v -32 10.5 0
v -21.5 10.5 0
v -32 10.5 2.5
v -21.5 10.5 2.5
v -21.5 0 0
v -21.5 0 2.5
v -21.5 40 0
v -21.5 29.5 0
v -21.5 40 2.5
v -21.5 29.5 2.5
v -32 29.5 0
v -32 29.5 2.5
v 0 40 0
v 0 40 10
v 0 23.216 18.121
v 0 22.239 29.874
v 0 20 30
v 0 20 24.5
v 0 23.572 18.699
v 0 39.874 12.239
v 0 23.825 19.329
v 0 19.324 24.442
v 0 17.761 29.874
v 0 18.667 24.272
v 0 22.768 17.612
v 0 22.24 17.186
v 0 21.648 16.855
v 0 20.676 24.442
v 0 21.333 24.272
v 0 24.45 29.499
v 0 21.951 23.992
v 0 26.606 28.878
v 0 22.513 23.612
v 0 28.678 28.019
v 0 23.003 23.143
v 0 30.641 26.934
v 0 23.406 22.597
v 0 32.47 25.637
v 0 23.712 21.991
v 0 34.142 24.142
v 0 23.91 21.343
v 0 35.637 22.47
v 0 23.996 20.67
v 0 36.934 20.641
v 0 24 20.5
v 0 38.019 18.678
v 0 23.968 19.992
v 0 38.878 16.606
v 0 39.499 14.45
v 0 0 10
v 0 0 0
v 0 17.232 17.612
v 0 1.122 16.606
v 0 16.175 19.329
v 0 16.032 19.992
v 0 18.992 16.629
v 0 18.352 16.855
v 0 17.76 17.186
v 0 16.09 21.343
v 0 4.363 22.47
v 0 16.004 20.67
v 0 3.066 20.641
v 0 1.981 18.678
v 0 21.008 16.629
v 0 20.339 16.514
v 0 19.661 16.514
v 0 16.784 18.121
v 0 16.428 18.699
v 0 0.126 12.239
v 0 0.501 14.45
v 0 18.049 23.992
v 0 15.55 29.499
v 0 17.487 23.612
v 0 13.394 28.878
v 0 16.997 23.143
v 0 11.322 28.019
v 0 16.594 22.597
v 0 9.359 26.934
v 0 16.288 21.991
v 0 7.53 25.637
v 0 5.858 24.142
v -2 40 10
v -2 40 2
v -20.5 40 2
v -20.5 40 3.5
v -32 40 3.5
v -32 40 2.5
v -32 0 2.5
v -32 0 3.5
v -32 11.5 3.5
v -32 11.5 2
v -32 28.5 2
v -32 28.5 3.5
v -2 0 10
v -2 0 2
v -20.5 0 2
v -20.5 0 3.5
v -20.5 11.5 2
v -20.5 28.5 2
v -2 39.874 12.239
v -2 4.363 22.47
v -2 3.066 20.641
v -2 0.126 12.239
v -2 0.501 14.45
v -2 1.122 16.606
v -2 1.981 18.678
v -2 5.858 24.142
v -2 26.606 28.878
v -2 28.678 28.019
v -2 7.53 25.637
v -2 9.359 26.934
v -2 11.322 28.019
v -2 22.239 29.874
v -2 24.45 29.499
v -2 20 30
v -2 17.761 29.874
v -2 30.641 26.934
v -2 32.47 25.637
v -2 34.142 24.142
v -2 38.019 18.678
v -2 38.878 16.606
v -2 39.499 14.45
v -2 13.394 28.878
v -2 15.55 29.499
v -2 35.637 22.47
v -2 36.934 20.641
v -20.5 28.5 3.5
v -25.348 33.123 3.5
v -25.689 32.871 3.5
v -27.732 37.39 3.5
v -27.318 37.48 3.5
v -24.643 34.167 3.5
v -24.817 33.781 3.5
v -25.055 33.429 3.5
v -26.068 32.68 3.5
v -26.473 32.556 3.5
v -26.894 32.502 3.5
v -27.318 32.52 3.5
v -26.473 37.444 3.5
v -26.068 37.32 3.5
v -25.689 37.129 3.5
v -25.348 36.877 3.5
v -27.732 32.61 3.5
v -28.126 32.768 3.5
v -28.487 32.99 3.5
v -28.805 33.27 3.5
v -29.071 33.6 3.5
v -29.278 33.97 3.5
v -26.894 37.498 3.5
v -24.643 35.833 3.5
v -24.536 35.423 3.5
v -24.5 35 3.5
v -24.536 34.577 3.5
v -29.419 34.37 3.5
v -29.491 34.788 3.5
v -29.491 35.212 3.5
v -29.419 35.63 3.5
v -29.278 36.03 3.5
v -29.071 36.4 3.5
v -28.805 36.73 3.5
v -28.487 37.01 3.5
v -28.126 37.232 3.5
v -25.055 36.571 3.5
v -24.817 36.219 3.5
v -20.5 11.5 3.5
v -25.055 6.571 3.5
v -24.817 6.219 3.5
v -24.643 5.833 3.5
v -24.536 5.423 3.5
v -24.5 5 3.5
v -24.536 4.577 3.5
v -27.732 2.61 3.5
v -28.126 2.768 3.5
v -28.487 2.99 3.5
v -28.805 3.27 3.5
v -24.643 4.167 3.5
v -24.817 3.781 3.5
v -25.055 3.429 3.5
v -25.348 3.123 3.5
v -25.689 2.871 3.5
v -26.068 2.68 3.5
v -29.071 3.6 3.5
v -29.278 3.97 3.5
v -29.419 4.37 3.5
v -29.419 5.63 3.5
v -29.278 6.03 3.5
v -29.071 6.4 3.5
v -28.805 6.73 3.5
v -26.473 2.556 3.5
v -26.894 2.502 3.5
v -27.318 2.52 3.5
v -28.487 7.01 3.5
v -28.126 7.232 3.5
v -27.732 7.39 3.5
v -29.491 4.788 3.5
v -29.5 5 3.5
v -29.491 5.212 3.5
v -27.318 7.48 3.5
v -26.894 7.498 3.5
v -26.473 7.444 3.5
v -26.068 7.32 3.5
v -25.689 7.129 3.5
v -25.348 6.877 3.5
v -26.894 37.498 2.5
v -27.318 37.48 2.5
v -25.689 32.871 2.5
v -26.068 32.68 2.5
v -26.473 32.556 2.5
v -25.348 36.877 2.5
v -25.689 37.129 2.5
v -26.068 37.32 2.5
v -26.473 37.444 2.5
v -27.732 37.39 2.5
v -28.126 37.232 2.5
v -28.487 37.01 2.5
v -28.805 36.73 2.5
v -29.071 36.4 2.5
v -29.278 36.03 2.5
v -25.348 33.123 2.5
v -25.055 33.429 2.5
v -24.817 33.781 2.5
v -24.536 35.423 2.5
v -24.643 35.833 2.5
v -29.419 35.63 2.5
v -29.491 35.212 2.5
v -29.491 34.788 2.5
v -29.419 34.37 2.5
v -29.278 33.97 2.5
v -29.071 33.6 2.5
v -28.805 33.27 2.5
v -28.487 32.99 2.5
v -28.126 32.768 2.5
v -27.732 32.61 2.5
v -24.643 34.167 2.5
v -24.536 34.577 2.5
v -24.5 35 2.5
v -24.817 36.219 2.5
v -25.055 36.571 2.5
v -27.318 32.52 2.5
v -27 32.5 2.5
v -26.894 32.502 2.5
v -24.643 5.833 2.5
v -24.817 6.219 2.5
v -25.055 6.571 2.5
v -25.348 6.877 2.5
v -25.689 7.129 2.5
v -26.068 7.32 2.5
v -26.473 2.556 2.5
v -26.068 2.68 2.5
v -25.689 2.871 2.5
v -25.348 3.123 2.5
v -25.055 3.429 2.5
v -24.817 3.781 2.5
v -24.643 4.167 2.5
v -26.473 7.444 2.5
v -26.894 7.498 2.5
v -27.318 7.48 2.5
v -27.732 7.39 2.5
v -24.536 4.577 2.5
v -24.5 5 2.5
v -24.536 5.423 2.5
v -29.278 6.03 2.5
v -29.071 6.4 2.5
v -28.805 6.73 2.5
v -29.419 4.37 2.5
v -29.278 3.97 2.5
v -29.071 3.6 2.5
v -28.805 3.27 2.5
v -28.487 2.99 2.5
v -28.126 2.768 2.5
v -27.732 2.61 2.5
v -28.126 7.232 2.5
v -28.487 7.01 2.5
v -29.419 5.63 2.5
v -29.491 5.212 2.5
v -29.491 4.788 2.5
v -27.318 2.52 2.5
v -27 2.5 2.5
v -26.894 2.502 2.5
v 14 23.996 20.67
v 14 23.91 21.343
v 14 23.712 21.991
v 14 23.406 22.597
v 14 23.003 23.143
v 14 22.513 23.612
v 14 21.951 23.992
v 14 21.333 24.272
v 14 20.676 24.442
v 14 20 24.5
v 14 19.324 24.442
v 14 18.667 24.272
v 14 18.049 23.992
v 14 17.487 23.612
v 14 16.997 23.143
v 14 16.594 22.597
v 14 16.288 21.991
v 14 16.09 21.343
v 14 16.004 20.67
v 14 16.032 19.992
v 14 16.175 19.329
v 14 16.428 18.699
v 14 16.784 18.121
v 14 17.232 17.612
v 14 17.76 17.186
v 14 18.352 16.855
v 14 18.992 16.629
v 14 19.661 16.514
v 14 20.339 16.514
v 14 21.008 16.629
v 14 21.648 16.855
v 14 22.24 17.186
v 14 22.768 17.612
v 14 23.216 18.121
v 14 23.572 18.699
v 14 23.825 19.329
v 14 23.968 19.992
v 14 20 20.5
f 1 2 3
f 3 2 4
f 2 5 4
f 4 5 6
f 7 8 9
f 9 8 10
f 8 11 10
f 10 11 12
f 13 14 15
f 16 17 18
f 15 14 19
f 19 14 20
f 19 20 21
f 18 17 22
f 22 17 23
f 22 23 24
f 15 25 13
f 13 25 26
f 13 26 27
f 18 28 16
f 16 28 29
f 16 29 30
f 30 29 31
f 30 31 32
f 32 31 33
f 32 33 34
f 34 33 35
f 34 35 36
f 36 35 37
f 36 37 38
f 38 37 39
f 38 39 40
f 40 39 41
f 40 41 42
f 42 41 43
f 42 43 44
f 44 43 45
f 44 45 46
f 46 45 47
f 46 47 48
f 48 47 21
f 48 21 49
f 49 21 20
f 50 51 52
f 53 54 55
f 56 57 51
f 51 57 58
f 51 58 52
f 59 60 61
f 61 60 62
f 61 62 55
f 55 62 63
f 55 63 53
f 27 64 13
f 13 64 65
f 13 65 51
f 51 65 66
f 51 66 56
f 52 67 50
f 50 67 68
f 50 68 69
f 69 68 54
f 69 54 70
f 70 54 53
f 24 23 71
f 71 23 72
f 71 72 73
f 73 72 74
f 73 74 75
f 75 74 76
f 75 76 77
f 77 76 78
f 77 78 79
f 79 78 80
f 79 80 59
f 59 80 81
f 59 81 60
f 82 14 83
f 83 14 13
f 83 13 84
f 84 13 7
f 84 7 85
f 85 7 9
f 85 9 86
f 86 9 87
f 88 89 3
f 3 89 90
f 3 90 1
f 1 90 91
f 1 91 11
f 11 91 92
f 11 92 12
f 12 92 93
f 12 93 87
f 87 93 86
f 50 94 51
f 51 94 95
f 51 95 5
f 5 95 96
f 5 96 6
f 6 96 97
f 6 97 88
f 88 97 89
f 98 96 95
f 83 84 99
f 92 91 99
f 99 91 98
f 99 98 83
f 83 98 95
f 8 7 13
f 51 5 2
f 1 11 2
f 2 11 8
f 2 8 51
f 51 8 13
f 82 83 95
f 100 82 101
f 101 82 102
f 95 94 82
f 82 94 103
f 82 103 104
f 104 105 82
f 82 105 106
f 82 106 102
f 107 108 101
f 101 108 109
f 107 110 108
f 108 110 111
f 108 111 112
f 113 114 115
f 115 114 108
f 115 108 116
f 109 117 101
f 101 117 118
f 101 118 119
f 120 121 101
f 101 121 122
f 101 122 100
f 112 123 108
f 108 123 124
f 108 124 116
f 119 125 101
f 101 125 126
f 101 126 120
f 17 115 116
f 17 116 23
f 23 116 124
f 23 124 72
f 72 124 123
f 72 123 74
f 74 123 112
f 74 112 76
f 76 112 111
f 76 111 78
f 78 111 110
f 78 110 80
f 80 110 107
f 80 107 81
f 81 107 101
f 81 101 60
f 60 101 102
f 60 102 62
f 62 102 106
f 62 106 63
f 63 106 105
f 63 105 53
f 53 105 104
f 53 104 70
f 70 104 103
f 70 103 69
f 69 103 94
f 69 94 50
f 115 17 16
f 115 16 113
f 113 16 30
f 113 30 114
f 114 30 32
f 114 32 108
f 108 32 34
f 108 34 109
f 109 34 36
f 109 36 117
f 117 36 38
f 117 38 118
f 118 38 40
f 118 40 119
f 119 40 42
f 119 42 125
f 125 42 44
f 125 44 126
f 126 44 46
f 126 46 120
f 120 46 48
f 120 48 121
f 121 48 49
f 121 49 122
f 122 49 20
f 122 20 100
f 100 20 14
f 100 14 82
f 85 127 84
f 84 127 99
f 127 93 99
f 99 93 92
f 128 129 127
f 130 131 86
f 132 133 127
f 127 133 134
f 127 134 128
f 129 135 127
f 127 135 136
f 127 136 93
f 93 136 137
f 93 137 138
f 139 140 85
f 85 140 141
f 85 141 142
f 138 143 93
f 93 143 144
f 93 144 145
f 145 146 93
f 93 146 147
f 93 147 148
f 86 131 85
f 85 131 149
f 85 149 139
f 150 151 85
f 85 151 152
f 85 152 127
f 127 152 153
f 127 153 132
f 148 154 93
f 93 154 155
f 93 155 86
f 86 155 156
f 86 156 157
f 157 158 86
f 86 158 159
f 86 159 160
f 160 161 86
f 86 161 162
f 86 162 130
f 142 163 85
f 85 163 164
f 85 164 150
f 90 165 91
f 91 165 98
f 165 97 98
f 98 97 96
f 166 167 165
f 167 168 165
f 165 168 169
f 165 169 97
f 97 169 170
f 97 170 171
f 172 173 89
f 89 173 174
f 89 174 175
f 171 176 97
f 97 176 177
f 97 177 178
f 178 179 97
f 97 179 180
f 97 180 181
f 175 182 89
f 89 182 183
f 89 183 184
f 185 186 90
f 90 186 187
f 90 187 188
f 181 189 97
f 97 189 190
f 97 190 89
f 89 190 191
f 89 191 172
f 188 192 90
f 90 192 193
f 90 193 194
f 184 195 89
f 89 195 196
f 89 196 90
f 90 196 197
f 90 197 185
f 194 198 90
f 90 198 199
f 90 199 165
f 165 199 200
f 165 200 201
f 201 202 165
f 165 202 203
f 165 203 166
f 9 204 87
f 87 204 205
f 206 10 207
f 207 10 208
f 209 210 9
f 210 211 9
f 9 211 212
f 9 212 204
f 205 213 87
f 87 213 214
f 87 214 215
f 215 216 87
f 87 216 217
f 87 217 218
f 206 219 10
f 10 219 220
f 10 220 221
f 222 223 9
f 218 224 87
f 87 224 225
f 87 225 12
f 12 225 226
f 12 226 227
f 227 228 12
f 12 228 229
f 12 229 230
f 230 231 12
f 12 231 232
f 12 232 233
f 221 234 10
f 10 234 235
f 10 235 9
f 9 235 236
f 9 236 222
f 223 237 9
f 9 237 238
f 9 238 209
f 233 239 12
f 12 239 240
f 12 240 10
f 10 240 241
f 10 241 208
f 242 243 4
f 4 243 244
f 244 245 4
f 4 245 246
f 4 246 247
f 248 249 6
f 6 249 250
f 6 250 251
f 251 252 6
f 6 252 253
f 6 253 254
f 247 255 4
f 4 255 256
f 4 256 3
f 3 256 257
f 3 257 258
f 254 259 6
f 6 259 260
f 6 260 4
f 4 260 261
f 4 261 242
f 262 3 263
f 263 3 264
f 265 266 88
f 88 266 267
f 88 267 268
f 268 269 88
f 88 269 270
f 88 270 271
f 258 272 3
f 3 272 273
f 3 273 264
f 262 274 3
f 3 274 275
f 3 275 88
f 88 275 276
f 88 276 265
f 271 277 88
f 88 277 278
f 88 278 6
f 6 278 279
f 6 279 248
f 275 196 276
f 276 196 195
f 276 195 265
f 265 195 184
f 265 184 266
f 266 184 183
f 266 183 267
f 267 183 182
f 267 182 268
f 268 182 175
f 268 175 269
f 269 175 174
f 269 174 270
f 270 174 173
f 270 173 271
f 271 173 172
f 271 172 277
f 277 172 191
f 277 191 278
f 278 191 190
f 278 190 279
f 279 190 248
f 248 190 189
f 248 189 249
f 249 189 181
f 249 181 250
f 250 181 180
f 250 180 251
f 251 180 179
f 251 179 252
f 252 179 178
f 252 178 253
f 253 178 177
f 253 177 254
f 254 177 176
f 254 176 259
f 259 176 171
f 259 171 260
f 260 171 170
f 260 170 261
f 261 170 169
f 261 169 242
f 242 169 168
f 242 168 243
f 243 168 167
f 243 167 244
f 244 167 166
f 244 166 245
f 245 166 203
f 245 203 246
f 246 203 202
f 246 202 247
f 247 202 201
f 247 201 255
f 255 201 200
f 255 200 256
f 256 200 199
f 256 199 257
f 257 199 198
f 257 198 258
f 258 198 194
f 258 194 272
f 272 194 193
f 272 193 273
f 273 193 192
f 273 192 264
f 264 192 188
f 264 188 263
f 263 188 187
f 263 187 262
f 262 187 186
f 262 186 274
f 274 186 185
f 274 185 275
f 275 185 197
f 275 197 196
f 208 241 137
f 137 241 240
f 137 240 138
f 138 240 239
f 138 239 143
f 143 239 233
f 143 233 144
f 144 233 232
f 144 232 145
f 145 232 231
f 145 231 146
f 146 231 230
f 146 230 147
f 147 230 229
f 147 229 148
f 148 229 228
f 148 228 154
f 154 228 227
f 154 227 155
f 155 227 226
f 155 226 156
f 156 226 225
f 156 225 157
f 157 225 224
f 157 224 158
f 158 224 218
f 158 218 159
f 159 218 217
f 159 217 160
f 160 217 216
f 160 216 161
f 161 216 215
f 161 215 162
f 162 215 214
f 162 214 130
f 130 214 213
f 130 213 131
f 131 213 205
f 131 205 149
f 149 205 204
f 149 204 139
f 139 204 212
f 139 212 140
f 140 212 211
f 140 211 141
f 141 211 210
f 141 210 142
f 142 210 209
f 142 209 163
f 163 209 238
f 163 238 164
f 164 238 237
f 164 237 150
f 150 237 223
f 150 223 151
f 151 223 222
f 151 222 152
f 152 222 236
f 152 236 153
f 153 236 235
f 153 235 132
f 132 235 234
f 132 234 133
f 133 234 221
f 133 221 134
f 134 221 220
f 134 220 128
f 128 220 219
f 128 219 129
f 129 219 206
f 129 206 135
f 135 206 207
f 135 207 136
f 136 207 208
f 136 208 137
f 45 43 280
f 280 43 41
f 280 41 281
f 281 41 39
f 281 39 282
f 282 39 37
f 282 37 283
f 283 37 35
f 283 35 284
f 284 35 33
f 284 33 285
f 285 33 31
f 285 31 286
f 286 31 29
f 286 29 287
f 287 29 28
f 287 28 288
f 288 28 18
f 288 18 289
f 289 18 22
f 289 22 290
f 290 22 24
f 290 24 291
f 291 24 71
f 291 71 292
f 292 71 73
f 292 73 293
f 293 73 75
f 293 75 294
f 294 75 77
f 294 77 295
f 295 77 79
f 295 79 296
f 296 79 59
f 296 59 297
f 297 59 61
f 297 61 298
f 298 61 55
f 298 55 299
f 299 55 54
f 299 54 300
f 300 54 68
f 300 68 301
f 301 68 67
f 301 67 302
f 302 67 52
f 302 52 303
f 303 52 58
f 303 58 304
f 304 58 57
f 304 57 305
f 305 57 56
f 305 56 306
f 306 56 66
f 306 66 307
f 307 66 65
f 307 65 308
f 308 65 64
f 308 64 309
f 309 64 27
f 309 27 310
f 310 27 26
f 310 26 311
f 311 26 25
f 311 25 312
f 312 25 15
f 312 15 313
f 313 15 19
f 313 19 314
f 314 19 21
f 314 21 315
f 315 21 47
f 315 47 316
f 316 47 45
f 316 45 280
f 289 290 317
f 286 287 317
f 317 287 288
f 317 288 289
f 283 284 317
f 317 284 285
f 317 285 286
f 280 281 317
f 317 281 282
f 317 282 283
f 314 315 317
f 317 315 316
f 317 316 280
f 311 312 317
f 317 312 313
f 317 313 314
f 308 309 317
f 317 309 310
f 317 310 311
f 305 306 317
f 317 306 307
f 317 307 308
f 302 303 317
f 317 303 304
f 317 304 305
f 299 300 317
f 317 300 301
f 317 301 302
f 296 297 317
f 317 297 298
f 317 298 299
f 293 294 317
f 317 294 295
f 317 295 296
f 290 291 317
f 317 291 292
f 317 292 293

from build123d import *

# Parameters (mm, degrees)
ESQUISSE1_W             = 32
ESQUISSE1_H             = 40
BOSS_EXTRU_1_DEPTH      = 2
ESQUISSE2_W             = 2
ESQUISSE2_H             = 40
BOSS_EXTRU_2_DEPTH      = 28
CONG_1_R                = 20
ESQUISSE3_R             = 4
ENL_V_MAT_EXTRU_1_DEPTH = 30
ESQUISSE4_W             = 10.5
ESQUISSE4_H             = 10.5
ENL_V_MAT_EXTRU_2_DEPTH = 30
ESQUISSE5_W             = 1
ESQUISSE5_H             = 1
ESQUISSE5_W_2           = 10.5
ESQUISSE5_H_2           = 10.5
BOSS_EXTRU_5_DEPTH      = 1.5
ESQUISSE6_W             = 1
ESQUISSE6_H             = 10.5
BOSS_EXTRU_6_DEPTH      = 10.5
ESQUISSE7_R             = 2.5
ENL_V_MAT_EXTRU_3_DEPTH = 10.5
BOSS_EXTRU_7_START      = -16
ESQUISSE8_R             = 4
BOSS_EXTRU_7_DEPTH      = 16


with BuildPart() as part:
    # Esquisse1 → Boss.-Extru.1 (new body)
    with BuildSketch(Plane.XY):
        with Locations((-16, 20)):
            Rectangle(ESQUISSE1_W, ESQUISSE1_H)
    extrude(amount=BOSS_EXTRU_1_DEPTH)

    # Esquisse2 → Boss.-Extru.2 (add)
    with BuildSketch(Plane.XY.offset(2)):
        with Locations((-1, 20)):
            Rectangle(ESQUISSE2_W, ESQUISSE2_H)
    extrude(amount=BOSS_EXTRU_2_DEPTH)

    # Congé1
    cong_1_edges = [part.edges().sort_by_distance(p)[0] for p in [
        (-1, 40, 30),
        (-1, 0, 30),
    ]]
    fillet(cong_1_edges, radius=CONG_1_R - 0.0001)  # a hair under: the kernel refuses the full size

    # Esquisse3 → Enlèv. mat.-Extru.1 (cut)
    with BuildSketch(Plane(origin=(0, 0, 0), x_dir=(0, 0, -1), z_dir=(1, 0, 0))):
        with Locations(Location((-20.5, 20, 0), (0, 0, 90))):
            Circle(ESQUISSE3_R)
    extrude(amount=-ENL_V_MAT_EXTRU_1_DEPTH, mode=Mode.SUBTRACT)

    # Esquisse4 → Enlèv. mat.-Extru.2 (cut)
    with BuildSketch(Plane.XY.offset(2)):
        with Locations((-26.75, 34.75)):
            Rectangle(ESQUISSE4_W, ESQUISSE4_H)
        with Locations((-26.75, 5.25)):
            Rectangle(ESQUISSE4_W, ESQUISSE4_H)
    extrude(amount=-ENL_V_MAT_EXTRU_2_DEPTH, mode=Mode.SUBTRACT)

    # Esquisse5 → Boss.-Extru.5 (add)
    with BuildSketch(Plane.XY.offset(2)):
        with Locations((-21, 29)):
            Rectangle(ESQUISSE5_W, ESQUISSE5_H)
        with Locations((-26.75, 29)):
            Rectangle(ESQUISSE5_W_2, ESQUISSE5_H)
        with Locations((-21, 34.75)):
            Rectangle(ESQUISSE5_W, ESQUISSE5_H_2)
        with Locations((-21, 11)):
            Rectangle(ESQUISSE5_W, ESQUISSE5_H)
        with Locations((-21, 5.25)):
            Rectangle(ESQUISSE5_W, ESQUISSE5_H_2)
        with Locations((-26.75, 11)):
            Rectangle(ESQUISSE5_W_2, ESQUISSE5_H)
    extrude(amount=BOSS_EXTRU_5_DEPTH)

    # Esquisse6 → Boss.-Extru.6 (add)
    with BuildSketch(Plane.ZY.offset(21.5)):
        with Locations((3, 34.75)):
            Rectangle(ESQUISSE6_W, ESQUISSE6_H)
        with Locations((3, 5.25)):
            Rectangle(ESQUISSE6_W, ESQUISSE6_H)
    extrude(amount=BOSS_EXTRU_6_DEPTH)

    # Esquisse7 → Enlèv. mat.-Extru.3 (cut)
    with BuildSketch(Plane.XY.offset(3.5)):
        with Locations((-27, 35)):
            Circle(ESQUISSE7_R)
        with Locations((-27, 5)):
            Circle(ESQUISSE7_R)
    extrude(amount=-ENL_V_MAT_EXTRU_3_DEPTH, mode=Mode.SUBTRACT)

    # Esquisse8 → Boss.-Extru.7 (add)
    with BuildSketch(Plane.ZY.offset(2).offset(BOSS_EXTRU_7_START)):
        with Locations((20.5, 20)):
            Circle(ESQUISSE8_R)
    extrude(amount=BOSS_EXTRU_7_DEPTH)


solid = part.part
